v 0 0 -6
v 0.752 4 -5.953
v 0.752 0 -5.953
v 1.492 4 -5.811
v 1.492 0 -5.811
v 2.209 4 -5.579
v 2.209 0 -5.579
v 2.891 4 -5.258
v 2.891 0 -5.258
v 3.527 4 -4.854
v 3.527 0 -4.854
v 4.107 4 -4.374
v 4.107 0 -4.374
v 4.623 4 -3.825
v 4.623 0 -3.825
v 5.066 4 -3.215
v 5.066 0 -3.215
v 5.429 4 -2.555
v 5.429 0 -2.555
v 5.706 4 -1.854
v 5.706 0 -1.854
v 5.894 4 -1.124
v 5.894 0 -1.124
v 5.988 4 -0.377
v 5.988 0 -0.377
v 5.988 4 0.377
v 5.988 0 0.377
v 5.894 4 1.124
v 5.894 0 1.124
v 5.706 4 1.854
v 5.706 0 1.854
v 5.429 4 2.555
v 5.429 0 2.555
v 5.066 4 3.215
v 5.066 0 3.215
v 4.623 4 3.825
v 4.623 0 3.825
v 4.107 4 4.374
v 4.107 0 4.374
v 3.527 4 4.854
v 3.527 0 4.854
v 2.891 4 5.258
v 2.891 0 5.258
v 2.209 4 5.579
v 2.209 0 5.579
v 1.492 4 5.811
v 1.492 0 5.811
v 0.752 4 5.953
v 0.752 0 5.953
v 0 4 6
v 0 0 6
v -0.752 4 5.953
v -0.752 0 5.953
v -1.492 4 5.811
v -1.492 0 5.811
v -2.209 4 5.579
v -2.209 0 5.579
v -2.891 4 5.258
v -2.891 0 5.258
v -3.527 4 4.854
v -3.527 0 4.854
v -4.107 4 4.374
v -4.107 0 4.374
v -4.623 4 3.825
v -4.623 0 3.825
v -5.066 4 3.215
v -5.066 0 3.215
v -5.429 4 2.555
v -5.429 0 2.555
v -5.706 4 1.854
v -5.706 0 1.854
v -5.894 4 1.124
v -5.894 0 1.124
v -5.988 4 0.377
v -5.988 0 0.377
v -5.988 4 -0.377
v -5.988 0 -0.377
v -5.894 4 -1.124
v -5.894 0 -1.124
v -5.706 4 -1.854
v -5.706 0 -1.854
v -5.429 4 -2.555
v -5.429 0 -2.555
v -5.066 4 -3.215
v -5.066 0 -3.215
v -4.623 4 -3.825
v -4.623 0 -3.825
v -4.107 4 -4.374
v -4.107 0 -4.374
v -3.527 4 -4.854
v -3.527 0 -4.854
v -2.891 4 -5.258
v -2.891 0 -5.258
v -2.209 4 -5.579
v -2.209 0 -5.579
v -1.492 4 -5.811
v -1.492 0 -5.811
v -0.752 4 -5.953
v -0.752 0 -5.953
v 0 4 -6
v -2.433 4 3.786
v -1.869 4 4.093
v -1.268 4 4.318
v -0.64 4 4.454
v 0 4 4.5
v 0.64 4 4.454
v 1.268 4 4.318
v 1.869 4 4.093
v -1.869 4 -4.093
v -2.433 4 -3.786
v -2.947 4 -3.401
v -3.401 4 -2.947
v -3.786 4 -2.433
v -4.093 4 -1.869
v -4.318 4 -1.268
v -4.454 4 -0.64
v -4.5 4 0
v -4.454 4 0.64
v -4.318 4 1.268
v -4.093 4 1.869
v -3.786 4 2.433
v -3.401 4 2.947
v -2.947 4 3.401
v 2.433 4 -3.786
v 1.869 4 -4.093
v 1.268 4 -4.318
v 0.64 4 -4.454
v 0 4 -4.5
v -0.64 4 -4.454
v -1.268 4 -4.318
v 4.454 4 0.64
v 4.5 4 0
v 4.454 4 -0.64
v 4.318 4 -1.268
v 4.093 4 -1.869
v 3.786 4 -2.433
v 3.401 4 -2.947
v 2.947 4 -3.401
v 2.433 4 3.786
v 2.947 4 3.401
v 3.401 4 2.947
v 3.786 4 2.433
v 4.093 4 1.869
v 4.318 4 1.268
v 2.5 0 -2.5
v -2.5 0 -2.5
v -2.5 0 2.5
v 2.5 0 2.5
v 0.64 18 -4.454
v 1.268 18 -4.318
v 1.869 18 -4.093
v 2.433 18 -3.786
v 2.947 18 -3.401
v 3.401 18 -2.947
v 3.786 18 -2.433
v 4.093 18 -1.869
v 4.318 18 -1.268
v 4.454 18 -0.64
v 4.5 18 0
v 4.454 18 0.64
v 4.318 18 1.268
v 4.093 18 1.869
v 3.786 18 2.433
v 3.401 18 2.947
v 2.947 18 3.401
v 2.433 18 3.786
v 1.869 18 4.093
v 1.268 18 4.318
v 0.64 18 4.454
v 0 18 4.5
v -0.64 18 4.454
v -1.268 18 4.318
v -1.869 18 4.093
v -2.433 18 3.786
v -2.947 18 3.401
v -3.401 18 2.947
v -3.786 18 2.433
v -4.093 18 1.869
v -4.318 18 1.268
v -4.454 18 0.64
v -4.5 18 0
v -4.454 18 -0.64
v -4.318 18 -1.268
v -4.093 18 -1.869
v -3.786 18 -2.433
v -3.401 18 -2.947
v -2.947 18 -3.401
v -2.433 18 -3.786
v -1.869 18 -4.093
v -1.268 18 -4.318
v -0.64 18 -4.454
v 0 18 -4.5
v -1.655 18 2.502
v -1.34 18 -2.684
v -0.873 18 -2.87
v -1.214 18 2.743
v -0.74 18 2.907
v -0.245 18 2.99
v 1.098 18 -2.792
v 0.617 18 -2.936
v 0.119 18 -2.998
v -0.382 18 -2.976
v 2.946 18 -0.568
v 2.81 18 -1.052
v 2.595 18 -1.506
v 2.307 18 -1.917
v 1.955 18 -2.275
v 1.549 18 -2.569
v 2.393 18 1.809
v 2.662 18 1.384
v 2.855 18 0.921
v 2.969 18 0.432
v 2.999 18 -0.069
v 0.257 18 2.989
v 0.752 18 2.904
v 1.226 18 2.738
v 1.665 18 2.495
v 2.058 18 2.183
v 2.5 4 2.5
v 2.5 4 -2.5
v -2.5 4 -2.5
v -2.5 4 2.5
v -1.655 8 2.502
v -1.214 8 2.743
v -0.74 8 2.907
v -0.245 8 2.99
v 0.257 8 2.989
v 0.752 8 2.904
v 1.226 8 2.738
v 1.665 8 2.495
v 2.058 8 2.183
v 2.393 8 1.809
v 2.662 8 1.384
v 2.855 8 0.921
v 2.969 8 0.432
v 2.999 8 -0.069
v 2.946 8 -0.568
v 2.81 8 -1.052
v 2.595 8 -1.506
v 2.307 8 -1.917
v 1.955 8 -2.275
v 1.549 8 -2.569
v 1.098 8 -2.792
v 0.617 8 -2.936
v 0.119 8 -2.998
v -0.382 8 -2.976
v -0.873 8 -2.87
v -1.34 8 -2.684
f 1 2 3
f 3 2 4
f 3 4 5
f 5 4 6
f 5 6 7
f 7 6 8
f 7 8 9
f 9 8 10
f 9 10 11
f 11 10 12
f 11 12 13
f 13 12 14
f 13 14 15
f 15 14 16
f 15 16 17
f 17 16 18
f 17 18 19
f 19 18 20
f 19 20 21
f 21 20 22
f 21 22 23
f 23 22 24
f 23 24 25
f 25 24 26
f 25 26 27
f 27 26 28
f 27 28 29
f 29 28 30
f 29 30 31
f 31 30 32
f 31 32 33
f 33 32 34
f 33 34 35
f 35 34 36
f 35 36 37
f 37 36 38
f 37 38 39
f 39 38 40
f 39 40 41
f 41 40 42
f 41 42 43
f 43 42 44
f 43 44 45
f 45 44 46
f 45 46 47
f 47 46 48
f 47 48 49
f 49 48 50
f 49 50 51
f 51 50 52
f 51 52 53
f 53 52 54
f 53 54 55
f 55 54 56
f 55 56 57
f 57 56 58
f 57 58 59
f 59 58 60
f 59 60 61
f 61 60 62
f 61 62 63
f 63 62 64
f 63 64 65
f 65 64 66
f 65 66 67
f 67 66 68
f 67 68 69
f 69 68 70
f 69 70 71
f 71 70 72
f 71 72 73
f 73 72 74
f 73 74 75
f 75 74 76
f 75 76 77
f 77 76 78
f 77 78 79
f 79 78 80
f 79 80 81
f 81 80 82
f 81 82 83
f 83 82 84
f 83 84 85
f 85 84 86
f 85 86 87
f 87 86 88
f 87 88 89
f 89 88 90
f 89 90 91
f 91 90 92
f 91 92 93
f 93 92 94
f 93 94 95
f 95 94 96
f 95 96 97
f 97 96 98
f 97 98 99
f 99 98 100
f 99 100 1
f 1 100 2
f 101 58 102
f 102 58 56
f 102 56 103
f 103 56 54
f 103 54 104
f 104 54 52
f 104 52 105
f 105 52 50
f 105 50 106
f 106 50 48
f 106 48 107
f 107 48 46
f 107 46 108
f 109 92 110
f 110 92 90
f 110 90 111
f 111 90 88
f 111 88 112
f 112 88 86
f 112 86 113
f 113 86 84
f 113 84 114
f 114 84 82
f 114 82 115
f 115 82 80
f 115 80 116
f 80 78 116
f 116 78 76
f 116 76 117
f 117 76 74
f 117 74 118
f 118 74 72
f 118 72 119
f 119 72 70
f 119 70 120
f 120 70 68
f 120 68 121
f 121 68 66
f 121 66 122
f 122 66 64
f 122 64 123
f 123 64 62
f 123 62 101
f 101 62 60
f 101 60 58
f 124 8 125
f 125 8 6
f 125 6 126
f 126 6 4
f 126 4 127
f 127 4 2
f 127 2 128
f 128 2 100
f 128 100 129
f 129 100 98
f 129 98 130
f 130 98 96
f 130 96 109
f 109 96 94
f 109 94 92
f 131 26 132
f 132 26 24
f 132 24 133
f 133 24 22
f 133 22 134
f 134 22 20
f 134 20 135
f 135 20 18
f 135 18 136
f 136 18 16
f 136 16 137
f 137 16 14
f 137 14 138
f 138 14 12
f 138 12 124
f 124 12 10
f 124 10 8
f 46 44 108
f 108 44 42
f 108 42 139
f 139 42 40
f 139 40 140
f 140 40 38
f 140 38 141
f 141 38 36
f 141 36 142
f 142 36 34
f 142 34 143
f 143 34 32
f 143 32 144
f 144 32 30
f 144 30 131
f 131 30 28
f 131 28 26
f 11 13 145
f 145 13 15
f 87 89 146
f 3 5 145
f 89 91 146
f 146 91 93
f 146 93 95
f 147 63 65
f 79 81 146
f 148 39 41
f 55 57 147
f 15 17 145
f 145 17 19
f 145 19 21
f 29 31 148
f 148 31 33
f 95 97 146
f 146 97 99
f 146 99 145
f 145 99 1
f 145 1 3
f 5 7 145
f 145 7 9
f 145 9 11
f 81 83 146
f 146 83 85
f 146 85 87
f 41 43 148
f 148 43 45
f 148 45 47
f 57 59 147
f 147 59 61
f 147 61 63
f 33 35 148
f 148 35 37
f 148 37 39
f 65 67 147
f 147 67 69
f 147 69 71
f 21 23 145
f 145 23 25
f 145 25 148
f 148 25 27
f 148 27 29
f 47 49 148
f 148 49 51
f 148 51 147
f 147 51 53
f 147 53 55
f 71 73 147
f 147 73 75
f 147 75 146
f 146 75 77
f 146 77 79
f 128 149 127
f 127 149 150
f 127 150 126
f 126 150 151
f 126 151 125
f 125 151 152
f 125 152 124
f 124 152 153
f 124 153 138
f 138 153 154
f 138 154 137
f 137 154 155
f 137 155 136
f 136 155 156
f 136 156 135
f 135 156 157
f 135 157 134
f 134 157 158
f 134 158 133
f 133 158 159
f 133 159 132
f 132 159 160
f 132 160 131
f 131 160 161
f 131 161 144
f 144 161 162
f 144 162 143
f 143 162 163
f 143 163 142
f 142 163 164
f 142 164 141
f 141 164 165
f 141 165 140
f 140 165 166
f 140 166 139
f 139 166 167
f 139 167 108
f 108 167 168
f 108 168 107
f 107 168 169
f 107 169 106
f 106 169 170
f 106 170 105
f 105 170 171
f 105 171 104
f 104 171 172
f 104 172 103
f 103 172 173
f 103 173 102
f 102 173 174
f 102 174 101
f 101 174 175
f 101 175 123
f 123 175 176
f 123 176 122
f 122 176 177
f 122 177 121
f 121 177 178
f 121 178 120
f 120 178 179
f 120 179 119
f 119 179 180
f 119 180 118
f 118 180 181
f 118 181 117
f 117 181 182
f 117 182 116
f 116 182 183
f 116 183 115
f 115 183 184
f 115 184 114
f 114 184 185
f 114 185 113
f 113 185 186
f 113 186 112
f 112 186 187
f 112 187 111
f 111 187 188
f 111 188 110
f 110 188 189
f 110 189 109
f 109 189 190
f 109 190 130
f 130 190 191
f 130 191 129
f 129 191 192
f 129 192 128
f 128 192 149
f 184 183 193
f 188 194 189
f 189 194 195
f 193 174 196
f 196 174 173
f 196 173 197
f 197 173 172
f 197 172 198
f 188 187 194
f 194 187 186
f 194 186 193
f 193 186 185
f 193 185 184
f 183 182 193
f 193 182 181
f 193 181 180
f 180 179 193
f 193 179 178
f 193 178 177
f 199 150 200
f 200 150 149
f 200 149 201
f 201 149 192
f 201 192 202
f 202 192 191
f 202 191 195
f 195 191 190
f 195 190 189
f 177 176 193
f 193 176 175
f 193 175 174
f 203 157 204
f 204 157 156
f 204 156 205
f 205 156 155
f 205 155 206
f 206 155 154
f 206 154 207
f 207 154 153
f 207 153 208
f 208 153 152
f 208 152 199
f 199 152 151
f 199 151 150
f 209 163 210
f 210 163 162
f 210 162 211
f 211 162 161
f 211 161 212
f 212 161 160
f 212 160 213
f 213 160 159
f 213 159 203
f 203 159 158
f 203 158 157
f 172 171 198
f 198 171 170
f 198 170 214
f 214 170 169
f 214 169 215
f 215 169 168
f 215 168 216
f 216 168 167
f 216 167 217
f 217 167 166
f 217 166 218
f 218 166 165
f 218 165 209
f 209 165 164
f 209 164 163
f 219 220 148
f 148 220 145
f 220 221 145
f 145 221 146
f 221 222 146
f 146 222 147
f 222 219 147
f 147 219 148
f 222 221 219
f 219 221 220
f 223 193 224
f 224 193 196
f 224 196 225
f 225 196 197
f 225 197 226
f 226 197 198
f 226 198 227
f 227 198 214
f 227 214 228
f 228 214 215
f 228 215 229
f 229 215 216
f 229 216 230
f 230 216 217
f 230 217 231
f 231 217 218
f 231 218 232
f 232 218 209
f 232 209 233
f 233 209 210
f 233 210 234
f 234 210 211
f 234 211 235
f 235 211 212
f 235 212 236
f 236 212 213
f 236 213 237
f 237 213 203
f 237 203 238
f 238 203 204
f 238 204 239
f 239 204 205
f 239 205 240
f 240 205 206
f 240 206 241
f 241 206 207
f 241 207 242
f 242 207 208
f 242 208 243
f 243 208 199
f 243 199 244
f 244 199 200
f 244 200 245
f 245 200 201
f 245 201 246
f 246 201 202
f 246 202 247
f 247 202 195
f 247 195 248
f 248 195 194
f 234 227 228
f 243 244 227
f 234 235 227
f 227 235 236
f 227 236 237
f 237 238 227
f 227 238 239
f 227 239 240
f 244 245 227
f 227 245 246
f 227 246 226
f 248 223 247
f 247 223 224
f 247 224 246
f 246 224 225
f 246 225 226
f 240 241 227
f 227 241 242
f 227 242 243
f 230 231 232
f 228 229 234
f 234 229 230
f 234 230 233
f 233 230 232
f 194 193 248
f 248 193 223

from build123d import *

# Parameters (mm, degrees)
SKETCH1_R           = 6
BOSS_EXTRUDE1_DEPTH = 4
SKETCH2_R           = 4.5
BOSS_EXTRUDE2_DEPTH = 14
SKETCH3_W           = 5
SKETCH3_H           = 5
CUT_EXTRUDE1_DEPTH  = 4
SKETCH4_R           = 3
CUT_EXTRUDE2_DEPTH  = 10
BOSS_EXTRUDE3_START = 10
BOSS_EXTRUDE3_DEPTH = 10


with BuildPart() as part:
    # Sketch1 → Boss-Extrude1 (new body)
    with BuildSketch(Plane(origin=(0, 0, 0), x_dir=(1, 0, 0), z_dir=(0, 1, 0))):
        with Locations(Location((0, 0, 0), (0, 0, 270))):
            Circle(SKETCH1_R)
    extrude(amount=BOSS_EXTRUDE1_DEPTH)

    # Sketch2 → Boss-Extrude2 (add)
    with BuildSketch(Plane(origin=(0, 4, 0), x_dir=(1, 0, 0), z_dir=(0, 1, 0))):
        with Locations(Location((0, 0, 0), (0, 0, 270))):
            Circle(SKETCH2_R)
    extrude(amount=BOSS_EXTRUDE2_DEPTH)

    # Sketch3 → Cut-Extrude1 (cut)
    with BuildSketch(Plane(origin=(0, 0, 0), x_dir=(-1, 0, 0), z_dir=(0, -1, 0))):
        Rectangle(SKETCH3_W, SKETCH3_H)
    extrude(amount=-CUT_EXTRUDE1_DEPTH, mode=Mode.SUBTRACT)

    # Sketch4 → Cut-Extrude2 (cut)
    with BuildSketch(Plane(origin=(0, 18, 0), x_dir=(1, 0, 0), z_dir=(0, 1, 0))):
        with Locations(Location((0, 0, 0), (0, 0, 270))):
            Circle(SKETCH4_R)
    extrude(amount=-CUT_EXTRUDE2_DEPTH, mode=Mode.SUBTRACT)

    # Sketch5 → Boss-Extrude3 (add)
    with BuildSketch(Plane(origin=(0, 8, 0), x_dir=(1, 0, 0), z_dir=(0, 1, 0)).offset(BOSS_EXTRUDE3_START)):
        with BuildLine():
            Line((-1.65486069, -2.502286174), (-1.33961305, 2.684294484))
            ThreePointArc((-1.33961305, 2.684294484), (-2.994473739, 0.18200831), (-1.65486069, -2.502286174))
        make_face()
    extrude(amount=-BOSS_EXTRUDE3_DEPTH)


solid = part.part
